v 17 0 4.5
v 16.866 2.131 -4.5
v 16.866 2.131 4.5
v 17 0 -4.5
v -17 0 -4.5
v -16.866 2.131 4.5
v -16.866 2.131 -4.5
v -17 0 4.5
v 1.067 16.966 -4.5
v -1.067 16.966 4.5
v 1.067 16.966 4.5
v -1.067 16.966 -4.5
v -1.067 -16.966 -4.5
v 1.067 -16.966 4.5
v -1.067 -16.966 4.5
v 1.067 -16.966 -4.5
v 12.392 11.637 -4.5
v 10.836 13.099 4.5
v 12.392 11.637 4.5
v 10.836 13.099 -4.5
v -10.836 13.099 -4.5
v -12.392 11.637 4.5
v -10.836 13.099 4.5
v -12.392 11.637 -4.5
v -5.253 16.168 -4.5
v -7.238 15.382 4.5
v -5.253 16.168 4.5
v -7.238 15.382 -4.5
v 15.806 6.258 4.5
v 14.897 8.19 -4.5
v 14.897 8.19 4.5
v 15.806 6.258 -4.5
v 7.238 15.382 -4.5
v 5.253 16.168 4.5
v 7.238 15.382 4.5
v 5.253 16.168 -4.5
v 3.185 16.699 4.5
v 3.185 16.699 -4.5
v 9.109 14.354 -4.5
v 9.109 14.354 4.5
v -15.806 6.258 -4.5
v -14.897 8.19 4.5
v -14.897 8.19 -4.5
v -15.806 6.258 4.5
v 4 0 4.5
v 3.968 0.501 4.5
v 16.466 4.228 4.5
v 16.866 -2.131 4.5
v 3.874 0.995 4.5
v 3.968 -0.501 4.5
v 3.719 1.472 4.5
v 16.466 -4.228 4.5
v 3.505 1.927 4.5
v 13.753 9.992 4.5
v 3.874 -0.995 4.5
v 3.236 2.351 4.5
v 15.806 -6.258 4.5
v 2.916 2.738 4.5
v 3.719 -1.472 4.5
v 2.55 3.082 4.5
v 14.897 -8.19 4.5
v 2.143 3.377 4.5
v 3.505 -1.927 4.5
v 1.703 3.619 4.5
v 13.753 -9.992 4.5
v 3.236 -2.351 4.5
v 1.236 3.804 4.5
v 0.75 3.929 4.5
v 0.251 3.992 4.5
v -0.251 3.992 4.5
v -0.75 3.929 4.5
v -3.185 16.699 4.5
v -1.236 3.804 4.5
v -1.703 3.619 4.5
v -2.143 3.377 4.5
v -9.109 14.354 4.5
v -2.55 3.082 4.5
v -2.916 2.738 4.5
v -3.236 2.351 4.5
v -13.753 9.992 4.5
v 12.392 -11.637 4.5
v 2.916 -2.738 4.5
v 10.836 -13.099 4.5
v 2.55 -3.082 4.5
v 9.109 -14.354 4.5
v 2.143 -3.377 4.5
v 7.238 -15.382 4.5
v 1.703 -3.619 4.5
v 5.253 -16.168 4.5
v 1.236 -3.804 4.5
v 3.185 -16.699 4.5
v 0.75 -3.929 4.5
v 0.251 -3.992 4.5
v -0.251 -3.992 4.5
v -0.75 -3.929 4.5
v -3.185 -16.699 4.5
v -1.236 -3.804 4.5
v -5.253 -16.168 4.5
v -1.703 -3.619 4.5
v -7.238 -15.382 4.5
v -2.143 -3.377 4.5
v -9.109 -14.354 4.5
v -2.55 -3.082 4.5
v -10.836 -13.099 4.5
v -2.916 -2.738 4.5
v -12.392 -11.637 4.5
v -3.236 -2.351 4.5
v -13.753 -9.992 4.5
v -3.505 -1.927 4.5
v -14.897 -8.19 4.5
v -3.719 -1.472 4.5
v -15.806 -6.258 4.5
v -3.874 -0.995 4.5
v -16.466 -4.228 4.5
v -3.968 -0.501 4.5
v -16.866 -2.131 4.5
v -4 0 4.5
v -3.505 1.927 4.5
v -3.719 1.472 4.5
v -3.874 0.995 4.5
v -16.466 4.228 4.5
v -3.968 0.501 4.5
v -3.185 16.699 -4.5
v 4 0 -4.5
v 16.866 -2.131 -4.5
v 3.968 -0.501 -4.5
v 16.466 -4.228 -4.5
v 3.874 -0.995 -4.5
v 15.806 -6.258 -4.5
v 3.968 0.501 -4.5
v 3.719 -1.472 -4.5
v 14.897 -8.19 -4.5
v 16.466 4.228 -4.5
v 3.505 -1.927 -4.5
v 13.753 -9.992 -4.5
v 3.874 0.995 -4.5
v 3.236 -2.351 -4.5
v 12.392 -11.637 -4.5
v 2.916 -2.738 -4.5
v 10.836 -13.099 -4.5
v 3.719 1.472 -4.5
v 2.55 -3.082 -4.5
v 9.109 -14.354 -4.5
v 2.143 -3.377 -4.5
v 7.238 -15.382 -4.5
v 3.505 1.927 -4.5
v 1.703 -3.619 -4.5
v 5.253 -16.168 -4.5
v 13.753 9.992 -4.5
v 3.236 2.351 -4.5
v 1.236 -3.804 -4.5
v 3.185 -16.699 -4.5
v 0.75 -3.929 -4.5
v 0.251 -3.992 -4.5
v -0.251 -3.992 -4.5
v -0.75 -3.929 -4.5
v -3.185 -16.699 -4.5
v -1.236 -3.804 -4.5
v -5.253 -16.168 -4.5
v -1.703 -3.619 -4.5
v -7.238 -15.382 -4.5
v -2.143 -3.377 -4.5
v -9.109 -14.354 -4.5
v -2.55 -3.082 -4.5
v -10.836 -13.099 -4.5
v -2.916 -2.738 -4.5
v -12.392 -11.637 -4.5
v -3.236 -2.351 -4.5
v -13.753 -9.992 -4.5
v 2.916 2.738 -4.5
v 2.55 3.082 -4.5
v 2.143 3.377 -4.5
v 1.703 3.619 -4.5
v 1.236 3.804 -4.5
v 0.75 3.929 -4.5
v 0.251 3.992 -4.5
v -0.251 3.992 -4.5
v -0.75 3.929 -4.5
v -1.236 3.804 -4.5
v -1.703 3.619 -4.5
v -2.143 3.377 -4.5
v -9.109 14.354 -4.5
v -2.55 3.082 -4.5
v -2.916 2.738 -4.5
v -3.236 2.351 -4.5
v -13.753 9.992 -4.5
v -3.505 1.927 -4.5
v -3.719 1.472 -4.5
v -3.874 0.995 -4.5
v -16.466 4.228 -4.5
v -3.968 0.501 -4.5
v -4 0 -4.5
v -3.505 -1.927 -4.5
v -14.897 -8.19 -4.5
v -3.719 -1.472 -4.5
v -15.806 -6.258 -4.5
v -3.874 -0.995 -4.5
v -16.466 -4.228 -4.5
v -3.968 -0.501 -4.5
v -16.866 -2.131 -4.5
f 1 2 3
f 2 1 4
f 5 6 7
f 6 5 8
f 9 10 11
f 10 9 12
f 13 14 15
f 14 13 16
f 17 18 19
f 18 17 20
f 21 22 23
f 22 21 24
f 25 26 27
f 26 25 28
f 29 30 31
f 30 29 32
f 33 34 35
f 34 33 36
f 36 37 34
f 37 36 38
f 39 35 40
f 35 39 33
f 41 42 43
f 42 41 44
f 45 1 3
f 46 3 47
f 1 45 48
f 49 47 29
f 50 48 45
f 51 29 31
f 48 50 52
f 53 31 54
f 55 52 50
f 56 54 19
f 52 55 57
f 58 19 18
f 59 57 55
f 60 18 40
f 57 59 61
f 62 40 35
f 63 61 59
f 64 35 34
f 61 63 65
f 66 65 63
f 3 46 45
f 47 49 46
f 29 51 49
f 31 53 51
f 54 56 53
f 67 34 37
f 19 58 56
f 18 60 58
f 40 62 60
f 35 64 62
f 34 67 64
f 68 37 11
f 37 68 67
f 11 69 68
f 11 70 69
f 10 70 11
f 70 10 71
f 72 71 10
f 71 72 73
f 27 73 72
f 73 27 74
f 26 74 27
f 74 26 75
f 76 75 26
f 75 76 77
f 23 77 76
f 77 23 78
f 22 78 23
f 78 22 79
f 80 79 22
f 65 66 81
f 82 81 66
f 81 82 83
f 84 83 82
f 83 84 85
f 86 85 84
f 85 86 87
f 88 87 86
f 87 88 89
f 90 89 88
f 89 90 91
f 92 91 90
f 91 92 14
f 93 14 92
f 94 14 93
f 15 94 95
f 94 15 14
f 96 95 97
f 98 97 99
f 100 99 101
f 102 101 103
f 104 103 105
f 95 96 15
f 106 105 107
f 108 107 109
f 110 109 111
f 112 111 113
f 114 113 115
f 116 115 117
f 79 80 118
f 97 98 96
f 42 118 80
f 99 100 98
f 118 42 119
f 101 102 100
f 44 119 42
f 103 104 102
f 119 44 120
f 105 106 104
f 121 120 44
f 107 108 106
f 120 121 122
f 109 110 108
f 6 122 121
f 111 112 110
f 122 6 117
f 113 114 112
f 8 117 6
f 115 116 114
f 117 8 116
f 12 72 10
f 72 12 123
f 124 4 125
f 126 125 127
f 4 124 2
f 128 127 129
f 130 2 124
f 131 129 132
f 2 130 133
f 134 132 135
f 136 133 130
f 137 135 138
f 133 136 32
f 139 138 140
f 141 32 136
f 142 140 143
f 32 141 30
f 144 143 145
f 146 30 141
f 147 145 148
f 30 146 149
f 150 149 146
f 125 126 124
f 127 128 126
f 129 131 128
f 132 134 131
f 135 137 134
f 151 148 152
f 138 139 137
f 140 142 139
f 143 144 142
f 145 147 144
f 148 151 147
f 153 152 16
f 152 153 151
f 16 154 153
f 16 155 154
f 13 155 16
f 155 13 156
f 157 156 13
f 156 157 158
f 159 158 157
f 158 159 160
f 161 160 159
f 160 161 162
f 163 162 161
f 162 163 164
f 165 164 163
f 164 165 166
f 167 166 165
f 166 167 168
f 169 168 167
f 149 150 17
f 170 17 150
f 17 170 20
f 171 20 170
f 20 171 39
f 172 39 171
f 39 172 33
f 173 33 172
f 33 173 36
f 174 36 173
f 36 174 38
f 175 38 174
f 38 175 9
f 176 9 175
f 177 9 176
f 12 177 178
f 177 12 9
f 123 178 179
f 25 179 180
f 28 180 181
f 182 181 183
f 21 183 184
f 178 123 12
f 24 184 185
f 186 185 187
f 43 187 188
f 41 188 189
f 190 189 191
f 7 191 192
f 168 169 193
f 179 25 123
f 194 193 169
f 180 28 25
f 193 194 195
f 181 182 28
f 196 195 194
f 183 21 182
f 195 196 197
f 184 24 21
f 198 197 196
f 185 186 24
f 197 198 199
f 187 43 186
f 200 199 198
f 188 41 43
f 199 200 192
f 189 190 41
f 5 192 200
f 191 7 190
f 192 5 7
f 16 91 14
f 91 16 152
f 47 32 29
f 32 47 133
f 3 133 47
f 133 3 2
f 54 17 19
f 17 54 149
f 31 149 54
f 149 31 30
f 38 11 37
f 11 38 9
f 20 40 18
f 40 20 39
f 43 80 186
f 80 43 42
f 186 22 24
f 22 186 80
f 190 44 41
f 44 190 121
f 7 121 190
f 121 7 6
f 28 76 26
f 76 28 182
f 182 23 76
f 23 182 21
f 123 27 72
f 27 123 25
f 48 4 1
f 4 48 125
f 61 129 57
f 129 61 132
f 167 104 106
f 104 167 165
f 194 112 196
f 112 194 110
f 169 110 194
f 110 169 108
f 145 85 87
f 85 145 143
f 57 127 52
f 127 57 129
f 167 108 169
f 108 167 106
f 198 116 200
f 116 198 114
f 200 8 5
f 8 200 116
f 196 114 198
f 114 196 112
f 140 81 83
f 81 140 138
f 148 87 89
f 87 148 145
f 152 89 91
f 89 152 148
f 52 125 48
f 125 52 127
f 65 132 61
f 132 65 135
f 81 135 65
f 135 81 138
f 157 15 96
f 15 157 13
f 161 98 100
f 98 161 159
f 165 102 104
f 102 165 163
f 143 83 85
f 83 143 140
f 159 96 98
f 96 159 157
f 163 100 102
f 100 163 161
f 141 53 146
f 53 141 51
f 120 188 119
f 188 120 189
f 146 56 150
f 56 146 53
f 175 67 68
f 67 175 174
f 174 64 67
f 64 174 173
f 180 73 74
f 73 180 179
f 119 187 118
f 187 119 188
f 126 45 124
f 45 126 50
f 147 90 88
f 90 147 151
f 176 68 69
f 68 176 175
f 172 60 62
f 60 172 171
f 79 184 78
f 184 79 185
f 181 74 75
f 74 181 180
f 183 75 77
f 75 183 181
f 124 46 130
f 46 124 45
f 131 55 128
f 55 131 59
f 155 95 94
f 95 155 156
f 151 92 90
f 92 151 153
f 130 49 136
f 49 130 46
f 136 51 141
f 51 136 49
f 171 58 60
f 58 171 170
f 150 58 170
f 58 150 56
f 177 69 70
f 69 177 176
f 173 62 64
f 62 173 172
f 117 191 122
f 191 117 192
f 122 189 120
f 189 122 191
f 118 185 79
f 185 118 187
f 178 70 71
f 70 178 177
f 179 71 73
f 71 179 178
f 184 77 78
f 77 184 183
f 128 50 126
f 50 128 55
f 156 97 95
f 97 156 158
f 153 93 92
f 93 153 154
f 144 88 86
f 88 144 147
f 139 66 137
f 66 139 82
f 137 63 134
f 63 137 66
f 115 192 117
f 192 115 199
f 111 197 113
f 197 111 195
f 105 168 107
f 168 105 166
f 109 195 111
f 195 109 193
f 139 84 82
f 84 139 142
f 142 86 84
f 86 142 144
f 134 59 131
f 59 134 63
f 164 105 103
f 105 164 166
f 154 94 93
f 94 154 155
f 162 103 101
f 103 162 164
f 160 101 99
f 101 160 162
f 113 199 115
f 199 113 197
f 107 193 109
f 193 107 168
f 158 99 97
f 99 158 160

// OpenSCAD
$fn = 50;


difference() {
	union() {
		translate(v = [0, 0, -4.5000000000]) {
			cylinder(h = 9, r = 17.0000000000);
		}
	}
	union() {
		translate(v = [0, 0, -100.0000000000]) {
			cylinder(h = 200, r = 4);
		}
	}
}
